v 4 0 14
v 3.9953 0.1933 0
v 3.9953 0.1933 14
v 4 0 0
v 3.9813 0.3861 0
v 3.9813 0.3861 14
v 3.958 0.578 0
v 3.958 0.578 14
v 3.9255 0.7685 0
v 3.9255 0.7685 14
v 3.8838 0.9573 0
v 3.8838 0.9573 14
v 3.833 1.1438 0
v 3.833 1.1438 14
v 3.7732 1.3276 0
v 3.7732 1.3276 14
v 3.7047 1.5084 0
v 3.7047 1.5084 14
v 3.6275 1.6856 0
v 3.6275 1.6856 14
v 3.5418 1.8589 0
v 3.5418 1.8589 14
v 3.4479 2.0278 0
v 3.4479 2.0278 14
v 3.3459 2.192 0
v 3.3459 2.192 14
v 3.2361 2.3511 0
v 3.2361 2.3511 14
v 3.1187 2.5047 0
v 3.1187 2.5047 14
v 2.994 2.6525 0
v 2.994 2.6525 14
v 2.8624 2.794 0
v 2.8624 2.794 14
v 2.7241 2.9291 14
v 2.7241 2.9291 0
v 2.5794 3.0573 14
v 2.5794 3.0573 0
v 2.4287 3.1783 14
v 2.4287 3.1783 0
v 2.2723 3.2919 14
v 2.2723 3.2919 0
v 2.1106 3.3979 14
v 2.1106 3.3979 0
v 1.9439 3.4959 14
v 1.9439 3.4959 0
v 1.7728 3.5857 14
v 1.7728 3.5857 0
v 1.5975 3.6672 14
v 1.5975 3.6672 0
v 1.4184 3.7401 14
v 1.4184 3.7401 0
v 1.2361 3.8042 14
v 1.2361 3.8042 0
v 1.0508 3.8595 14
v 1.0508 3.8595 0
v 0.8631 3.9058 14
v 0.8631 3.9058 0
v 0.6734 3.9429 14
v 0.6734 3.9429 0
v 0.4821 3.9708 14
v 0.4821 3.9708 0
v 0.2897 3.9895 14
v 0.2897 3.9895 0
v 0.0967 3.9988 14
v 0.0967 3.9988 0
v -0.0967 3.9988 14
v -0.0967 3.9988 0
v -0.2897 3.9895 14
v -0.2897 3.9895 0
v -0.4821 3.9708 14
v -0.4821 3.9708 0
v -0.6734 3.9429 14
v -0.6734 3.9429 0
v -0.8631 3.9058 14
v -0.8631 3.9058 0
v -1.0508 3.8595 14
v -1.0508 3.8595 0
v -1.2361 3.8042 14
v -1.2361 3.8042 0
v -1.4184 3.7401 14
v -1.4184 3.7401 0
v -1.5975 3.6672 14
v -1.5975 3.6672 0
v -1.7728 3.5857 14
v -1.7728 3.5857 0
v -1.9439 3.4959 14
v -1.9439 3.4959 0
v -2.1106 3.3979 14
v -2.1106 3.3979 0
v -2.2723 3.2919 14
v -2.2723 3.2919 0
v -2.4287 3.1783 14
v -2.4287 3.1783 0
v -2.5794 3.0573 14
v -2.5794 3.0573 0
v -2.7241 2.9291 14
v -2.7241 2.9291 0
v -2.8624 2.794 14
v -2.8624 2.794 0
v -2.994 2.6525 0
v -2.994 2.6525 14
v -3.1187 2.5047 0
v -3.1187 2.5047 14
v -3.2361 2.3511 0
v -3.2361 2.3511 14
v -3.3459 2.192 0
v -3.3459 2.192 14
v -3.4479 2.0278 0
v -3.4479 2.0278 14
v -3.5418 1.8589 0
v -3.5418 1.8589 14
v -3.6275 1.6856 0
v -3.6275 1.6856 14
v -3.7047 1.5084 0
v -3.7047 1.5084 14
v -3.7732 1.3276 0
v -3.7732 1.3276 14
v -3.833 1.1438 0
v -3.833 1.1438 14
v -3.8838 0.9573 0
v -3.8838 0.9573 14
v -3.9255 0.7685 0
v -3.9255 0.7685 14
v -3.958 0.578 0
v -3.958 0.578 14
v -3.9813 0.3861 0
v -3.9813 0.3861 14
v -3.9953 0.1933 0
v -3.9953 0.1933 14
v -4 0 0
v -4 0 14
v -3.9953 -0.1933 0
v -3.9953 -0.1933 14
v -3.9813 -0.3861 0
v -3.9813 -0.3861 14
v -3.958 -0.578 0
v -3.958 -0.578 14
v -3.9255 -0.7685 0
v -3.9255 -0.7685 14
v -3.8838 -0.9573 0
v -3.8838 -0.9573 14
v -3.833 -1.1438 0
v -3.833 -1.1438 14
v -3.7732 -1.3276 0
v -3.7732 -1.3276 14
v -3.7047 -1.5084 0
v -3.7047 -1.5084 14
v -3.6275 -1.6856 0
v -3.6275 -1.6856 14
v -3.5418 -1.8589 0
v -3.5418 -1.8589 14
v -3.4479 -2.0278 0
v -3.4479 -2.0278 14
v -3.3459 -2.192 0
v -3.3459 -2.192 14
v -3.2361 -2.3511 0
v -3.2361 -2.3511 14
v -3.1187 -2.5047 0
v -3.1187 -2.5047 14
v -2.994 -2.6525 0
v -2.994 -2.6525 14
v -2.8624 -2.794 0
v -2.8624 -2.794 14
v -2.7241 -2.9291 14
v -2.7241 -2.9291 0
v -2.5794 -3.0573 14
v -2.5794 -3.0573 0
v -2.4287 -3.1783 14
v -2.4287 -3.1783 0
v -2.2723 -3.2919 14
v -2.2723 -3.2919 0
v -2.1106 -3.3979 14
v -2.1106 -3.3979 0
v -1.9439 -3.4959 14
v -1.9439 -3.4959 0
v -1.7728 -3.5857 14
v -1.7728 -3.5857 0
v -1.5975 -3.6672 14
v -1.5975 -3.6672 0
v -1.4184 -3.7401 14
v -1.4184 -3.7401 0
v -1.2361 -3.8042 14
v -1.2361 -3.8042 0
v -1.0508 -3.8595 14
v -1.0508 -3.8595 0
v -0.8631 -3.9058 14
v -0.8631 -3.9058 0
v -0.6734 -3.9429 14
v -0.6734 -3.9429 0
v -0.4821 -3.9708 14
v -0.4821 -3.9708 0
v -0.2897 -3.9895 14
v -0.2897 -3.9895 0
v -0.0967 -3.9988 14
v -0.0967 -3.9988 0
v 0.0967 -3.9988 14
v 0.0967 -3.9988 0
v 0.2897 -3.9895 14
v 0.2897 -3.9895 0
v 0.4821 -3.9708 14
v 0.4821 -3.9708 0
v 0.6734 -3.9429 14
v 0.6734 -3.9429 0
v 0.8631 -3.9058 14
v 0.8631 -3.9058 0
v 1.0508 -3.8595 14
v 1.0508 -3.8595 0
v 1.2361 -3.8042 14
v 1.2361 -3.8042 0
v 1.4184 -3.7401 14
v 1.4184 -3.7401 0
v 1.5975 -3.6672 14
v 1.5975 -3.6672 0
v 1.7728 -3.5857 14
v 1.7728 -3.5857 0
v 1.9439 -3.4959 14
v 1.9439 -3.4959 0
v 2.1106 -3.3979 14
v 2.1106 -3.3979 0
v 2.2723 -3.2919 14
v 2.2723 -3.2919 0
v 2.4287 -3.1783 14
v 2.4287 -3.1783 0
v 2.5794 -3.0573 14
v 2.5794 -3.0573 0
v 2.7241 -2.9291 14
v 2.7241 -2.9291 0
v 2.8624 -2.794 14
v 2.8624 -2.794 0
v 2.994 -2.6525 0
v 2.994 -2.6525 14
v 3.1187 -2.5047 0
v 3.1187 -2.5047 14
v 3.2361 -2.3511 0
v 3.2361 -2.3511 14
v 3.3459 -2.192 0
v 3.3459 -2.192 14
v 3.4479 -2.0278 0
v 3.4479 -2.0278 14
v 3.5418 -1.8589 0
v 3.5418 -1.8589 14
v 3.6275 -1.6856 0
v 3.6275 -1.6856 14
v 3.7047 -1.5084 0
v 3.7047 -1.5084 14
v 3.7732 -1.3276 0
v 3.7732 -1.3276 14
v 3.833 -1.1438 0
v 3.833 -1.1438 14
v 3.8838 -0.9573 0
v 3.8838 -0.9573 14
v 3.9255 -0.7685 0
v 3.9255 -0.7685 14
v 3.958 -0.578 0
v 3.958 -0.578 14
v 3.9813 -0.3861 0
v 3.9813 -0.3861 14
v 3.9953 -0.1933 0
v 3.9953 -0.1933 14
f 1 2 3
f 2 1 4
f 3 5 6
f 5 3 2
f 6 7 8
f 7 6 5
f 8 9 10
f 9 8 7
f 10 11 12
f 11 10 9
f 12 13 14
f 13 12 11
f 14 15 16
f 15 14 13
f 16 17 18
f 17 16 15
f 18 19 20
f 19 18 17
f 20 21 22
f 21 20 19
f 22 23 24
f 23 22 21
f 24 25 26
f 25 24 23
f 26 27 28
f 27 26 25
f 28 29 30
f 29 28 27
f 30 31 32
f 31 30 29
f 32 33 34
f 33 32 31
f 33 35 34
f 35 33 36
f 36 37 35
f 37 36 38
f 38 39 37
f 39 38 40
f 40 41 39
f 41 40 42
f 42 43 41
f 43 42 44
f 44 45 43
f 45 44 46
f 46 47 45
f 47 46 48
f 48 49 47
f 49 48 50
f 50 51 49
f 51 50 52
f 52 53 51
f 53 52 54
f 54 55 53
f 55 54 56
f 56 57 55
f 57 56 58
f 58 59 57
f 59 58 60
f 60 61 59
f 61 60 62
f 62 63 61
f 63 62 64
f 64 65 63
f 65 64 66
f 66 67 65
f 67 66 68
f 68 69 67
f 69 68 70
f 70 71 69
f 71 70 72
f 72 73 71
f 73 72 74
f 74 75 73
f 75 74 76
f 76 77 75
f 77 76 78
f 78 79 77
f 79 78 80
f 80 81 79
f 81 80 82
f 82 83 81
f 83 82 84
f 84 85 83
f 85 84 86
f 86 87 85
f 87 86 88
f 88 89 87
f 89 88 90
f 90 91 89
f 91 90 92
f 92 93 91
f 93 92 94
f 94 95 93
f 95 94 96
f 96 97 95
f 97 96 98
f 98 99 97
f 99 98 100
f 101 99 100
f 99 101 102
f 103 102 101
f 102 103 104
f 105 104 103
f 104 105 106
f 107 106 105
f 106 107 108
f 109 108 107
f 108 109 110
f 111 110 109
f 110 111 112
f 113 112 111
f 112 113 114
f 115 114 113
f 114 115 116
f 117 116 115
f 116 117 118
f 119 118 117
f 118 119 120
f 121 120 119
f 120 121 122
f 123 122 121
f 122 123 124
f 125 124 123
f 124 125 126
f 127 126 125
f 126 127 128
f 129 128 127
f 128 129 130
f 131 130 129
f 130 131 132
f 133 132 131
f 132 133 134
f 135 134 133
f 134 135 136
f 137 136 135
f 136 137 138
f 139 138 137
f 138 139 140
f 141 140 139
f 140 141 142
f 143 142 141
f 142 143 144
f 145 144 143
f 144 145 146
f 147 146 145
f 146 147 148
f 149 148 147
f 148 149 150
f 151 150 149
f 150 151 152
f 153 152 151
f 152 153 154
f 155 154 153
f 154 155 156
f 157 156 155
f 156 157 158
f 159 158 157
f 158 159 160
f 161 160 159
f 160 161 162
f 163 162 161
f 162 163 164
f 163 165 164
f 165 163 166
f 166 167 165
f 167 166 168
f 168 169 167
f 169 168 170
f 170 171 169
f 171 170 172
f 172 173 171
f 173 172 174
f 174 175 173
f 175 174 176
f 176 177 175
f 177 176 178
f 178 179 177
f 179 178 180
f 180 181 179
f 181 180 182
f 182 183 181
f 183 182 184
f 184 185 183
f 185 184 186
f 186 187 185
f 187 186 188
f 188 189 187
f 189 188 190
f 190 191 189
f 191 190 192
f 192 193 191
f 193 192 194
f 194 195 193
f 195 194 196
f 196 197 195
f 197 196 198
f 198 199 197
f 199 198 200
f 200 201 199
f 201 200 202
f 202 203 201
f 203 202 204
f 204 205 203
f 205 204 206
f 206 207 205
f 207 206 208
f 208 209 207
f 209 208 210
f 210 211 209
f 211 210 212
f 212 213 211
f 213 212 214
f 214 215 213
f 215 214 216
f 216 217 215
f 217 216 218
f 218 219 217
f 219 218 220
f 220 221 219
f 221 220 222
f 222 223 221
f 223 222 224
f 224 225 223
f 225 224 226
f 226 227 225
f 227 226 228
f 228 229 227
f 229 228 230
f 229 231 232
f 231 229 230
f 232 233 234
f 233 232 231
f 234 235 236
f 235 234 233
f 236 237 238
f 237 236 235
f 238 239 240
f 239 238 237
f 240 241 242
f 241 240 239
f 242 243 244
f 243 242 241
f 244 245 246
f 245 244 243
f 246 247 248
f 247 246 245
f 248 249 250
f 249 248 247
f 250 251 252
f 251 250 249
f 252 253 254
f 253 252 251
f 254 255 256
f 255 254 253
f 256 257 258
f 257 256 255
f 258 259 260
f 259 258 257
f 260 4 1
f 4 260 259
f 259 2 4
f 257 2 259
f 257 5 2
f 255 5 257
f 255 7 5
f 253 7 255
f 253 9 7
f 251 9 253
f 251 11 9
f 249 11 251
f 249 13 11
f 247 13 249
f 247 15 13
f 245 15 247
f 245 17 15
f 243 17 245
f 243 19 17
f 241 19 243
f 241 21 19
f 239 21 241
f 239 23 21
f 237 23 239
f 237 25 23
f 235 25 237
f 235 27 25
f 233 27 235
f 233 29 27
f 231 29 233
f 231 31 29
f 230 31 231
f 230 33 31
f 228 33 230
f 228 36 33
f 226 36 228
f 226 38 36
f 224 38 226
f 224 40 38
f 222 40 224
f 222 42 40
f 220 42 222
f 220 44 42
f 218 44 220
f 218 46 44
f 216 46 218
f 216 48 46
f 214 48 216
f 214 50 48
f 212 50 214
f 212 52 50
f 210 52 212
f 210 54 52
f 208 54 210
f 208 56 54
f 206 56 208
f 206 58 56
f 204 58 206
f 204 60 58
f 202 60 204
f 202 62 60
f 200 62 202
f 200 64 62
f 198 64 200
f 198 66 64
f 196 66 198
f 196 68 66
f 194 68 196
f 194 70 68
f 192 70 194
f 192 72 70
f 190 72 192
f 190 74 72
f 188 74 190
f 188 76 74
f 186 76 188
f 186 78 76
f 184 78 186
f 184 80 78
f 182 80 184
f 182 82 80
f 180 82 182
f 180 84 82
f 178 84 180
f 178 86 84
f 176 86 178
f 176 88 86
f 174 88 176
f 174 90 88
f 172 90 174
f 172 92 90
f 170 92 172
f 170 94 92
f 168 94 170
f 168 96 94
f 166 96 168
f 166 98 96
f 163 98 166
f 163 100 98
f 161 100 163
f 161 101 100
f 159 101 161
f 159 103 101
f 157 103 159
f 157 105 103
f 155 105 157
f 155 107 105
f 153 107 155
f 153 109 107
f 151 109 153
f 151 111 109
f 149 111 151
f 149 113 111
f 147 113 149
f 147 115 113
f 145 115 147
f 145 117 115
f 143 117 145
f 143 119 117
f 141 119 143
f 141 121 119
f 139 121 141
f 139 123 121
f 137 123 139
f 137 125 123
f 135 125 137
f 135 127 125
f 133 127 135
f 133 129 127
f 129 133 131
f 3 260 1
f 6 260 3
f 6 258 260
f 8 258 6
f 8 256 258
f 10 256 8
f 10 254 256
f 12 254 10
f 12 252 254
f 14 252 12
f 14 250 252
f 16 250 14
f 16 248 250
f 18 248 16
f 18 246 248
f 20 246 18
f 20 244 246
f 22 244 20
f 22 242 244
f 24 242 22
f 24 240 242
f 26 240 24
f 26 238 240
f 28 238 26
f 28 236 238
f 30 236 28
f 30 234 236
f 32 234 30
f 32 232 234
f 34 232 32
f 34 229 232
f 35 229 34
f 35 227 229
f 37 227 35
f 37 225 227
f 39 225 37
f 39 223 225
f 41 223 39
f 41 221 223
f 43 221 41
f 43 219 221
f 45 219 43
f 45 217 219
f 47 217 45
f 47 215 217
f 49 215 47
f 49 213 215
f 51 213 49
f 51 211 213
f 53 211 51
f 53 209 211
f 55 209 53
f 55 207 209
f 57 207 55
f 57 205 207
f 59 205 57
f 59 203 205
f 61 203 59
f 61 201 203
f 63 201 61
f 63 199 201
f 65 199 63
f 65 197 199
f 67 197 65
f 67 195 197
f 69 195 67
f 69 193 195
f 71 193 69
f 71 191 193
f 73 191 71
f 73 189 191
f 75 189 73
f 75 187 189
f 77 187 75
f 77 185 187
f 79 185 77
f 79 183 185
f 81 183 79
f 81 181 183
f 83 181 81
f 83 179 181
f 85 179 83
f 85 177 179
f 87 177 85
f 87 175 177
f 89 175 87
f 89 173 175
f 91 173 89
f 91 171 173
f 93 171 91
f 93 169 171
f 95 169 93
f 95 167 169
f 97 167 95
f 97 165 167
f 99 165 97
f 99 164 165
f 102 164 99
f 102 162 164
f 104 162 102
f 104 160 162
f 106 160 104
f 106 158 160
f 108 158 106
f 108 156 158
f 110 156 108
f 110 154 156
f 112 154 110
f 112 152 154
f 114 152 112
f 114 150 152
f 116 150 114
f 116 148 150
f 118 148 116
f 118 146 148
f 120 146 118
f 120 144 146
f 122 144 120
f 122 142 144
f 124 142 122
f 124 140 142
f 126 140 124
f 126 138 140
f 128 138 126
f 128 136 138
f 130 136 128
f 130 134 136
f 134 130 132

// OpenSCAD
$fn=130;

D_sock=8;    //Sockeldurchmesser

H_sock=14;   //Sockelhöhe


//Sockel

color("SlateGray")
//color("WhiteSmoke")

cylinder (h=H_sock, d=D_sock);

  
